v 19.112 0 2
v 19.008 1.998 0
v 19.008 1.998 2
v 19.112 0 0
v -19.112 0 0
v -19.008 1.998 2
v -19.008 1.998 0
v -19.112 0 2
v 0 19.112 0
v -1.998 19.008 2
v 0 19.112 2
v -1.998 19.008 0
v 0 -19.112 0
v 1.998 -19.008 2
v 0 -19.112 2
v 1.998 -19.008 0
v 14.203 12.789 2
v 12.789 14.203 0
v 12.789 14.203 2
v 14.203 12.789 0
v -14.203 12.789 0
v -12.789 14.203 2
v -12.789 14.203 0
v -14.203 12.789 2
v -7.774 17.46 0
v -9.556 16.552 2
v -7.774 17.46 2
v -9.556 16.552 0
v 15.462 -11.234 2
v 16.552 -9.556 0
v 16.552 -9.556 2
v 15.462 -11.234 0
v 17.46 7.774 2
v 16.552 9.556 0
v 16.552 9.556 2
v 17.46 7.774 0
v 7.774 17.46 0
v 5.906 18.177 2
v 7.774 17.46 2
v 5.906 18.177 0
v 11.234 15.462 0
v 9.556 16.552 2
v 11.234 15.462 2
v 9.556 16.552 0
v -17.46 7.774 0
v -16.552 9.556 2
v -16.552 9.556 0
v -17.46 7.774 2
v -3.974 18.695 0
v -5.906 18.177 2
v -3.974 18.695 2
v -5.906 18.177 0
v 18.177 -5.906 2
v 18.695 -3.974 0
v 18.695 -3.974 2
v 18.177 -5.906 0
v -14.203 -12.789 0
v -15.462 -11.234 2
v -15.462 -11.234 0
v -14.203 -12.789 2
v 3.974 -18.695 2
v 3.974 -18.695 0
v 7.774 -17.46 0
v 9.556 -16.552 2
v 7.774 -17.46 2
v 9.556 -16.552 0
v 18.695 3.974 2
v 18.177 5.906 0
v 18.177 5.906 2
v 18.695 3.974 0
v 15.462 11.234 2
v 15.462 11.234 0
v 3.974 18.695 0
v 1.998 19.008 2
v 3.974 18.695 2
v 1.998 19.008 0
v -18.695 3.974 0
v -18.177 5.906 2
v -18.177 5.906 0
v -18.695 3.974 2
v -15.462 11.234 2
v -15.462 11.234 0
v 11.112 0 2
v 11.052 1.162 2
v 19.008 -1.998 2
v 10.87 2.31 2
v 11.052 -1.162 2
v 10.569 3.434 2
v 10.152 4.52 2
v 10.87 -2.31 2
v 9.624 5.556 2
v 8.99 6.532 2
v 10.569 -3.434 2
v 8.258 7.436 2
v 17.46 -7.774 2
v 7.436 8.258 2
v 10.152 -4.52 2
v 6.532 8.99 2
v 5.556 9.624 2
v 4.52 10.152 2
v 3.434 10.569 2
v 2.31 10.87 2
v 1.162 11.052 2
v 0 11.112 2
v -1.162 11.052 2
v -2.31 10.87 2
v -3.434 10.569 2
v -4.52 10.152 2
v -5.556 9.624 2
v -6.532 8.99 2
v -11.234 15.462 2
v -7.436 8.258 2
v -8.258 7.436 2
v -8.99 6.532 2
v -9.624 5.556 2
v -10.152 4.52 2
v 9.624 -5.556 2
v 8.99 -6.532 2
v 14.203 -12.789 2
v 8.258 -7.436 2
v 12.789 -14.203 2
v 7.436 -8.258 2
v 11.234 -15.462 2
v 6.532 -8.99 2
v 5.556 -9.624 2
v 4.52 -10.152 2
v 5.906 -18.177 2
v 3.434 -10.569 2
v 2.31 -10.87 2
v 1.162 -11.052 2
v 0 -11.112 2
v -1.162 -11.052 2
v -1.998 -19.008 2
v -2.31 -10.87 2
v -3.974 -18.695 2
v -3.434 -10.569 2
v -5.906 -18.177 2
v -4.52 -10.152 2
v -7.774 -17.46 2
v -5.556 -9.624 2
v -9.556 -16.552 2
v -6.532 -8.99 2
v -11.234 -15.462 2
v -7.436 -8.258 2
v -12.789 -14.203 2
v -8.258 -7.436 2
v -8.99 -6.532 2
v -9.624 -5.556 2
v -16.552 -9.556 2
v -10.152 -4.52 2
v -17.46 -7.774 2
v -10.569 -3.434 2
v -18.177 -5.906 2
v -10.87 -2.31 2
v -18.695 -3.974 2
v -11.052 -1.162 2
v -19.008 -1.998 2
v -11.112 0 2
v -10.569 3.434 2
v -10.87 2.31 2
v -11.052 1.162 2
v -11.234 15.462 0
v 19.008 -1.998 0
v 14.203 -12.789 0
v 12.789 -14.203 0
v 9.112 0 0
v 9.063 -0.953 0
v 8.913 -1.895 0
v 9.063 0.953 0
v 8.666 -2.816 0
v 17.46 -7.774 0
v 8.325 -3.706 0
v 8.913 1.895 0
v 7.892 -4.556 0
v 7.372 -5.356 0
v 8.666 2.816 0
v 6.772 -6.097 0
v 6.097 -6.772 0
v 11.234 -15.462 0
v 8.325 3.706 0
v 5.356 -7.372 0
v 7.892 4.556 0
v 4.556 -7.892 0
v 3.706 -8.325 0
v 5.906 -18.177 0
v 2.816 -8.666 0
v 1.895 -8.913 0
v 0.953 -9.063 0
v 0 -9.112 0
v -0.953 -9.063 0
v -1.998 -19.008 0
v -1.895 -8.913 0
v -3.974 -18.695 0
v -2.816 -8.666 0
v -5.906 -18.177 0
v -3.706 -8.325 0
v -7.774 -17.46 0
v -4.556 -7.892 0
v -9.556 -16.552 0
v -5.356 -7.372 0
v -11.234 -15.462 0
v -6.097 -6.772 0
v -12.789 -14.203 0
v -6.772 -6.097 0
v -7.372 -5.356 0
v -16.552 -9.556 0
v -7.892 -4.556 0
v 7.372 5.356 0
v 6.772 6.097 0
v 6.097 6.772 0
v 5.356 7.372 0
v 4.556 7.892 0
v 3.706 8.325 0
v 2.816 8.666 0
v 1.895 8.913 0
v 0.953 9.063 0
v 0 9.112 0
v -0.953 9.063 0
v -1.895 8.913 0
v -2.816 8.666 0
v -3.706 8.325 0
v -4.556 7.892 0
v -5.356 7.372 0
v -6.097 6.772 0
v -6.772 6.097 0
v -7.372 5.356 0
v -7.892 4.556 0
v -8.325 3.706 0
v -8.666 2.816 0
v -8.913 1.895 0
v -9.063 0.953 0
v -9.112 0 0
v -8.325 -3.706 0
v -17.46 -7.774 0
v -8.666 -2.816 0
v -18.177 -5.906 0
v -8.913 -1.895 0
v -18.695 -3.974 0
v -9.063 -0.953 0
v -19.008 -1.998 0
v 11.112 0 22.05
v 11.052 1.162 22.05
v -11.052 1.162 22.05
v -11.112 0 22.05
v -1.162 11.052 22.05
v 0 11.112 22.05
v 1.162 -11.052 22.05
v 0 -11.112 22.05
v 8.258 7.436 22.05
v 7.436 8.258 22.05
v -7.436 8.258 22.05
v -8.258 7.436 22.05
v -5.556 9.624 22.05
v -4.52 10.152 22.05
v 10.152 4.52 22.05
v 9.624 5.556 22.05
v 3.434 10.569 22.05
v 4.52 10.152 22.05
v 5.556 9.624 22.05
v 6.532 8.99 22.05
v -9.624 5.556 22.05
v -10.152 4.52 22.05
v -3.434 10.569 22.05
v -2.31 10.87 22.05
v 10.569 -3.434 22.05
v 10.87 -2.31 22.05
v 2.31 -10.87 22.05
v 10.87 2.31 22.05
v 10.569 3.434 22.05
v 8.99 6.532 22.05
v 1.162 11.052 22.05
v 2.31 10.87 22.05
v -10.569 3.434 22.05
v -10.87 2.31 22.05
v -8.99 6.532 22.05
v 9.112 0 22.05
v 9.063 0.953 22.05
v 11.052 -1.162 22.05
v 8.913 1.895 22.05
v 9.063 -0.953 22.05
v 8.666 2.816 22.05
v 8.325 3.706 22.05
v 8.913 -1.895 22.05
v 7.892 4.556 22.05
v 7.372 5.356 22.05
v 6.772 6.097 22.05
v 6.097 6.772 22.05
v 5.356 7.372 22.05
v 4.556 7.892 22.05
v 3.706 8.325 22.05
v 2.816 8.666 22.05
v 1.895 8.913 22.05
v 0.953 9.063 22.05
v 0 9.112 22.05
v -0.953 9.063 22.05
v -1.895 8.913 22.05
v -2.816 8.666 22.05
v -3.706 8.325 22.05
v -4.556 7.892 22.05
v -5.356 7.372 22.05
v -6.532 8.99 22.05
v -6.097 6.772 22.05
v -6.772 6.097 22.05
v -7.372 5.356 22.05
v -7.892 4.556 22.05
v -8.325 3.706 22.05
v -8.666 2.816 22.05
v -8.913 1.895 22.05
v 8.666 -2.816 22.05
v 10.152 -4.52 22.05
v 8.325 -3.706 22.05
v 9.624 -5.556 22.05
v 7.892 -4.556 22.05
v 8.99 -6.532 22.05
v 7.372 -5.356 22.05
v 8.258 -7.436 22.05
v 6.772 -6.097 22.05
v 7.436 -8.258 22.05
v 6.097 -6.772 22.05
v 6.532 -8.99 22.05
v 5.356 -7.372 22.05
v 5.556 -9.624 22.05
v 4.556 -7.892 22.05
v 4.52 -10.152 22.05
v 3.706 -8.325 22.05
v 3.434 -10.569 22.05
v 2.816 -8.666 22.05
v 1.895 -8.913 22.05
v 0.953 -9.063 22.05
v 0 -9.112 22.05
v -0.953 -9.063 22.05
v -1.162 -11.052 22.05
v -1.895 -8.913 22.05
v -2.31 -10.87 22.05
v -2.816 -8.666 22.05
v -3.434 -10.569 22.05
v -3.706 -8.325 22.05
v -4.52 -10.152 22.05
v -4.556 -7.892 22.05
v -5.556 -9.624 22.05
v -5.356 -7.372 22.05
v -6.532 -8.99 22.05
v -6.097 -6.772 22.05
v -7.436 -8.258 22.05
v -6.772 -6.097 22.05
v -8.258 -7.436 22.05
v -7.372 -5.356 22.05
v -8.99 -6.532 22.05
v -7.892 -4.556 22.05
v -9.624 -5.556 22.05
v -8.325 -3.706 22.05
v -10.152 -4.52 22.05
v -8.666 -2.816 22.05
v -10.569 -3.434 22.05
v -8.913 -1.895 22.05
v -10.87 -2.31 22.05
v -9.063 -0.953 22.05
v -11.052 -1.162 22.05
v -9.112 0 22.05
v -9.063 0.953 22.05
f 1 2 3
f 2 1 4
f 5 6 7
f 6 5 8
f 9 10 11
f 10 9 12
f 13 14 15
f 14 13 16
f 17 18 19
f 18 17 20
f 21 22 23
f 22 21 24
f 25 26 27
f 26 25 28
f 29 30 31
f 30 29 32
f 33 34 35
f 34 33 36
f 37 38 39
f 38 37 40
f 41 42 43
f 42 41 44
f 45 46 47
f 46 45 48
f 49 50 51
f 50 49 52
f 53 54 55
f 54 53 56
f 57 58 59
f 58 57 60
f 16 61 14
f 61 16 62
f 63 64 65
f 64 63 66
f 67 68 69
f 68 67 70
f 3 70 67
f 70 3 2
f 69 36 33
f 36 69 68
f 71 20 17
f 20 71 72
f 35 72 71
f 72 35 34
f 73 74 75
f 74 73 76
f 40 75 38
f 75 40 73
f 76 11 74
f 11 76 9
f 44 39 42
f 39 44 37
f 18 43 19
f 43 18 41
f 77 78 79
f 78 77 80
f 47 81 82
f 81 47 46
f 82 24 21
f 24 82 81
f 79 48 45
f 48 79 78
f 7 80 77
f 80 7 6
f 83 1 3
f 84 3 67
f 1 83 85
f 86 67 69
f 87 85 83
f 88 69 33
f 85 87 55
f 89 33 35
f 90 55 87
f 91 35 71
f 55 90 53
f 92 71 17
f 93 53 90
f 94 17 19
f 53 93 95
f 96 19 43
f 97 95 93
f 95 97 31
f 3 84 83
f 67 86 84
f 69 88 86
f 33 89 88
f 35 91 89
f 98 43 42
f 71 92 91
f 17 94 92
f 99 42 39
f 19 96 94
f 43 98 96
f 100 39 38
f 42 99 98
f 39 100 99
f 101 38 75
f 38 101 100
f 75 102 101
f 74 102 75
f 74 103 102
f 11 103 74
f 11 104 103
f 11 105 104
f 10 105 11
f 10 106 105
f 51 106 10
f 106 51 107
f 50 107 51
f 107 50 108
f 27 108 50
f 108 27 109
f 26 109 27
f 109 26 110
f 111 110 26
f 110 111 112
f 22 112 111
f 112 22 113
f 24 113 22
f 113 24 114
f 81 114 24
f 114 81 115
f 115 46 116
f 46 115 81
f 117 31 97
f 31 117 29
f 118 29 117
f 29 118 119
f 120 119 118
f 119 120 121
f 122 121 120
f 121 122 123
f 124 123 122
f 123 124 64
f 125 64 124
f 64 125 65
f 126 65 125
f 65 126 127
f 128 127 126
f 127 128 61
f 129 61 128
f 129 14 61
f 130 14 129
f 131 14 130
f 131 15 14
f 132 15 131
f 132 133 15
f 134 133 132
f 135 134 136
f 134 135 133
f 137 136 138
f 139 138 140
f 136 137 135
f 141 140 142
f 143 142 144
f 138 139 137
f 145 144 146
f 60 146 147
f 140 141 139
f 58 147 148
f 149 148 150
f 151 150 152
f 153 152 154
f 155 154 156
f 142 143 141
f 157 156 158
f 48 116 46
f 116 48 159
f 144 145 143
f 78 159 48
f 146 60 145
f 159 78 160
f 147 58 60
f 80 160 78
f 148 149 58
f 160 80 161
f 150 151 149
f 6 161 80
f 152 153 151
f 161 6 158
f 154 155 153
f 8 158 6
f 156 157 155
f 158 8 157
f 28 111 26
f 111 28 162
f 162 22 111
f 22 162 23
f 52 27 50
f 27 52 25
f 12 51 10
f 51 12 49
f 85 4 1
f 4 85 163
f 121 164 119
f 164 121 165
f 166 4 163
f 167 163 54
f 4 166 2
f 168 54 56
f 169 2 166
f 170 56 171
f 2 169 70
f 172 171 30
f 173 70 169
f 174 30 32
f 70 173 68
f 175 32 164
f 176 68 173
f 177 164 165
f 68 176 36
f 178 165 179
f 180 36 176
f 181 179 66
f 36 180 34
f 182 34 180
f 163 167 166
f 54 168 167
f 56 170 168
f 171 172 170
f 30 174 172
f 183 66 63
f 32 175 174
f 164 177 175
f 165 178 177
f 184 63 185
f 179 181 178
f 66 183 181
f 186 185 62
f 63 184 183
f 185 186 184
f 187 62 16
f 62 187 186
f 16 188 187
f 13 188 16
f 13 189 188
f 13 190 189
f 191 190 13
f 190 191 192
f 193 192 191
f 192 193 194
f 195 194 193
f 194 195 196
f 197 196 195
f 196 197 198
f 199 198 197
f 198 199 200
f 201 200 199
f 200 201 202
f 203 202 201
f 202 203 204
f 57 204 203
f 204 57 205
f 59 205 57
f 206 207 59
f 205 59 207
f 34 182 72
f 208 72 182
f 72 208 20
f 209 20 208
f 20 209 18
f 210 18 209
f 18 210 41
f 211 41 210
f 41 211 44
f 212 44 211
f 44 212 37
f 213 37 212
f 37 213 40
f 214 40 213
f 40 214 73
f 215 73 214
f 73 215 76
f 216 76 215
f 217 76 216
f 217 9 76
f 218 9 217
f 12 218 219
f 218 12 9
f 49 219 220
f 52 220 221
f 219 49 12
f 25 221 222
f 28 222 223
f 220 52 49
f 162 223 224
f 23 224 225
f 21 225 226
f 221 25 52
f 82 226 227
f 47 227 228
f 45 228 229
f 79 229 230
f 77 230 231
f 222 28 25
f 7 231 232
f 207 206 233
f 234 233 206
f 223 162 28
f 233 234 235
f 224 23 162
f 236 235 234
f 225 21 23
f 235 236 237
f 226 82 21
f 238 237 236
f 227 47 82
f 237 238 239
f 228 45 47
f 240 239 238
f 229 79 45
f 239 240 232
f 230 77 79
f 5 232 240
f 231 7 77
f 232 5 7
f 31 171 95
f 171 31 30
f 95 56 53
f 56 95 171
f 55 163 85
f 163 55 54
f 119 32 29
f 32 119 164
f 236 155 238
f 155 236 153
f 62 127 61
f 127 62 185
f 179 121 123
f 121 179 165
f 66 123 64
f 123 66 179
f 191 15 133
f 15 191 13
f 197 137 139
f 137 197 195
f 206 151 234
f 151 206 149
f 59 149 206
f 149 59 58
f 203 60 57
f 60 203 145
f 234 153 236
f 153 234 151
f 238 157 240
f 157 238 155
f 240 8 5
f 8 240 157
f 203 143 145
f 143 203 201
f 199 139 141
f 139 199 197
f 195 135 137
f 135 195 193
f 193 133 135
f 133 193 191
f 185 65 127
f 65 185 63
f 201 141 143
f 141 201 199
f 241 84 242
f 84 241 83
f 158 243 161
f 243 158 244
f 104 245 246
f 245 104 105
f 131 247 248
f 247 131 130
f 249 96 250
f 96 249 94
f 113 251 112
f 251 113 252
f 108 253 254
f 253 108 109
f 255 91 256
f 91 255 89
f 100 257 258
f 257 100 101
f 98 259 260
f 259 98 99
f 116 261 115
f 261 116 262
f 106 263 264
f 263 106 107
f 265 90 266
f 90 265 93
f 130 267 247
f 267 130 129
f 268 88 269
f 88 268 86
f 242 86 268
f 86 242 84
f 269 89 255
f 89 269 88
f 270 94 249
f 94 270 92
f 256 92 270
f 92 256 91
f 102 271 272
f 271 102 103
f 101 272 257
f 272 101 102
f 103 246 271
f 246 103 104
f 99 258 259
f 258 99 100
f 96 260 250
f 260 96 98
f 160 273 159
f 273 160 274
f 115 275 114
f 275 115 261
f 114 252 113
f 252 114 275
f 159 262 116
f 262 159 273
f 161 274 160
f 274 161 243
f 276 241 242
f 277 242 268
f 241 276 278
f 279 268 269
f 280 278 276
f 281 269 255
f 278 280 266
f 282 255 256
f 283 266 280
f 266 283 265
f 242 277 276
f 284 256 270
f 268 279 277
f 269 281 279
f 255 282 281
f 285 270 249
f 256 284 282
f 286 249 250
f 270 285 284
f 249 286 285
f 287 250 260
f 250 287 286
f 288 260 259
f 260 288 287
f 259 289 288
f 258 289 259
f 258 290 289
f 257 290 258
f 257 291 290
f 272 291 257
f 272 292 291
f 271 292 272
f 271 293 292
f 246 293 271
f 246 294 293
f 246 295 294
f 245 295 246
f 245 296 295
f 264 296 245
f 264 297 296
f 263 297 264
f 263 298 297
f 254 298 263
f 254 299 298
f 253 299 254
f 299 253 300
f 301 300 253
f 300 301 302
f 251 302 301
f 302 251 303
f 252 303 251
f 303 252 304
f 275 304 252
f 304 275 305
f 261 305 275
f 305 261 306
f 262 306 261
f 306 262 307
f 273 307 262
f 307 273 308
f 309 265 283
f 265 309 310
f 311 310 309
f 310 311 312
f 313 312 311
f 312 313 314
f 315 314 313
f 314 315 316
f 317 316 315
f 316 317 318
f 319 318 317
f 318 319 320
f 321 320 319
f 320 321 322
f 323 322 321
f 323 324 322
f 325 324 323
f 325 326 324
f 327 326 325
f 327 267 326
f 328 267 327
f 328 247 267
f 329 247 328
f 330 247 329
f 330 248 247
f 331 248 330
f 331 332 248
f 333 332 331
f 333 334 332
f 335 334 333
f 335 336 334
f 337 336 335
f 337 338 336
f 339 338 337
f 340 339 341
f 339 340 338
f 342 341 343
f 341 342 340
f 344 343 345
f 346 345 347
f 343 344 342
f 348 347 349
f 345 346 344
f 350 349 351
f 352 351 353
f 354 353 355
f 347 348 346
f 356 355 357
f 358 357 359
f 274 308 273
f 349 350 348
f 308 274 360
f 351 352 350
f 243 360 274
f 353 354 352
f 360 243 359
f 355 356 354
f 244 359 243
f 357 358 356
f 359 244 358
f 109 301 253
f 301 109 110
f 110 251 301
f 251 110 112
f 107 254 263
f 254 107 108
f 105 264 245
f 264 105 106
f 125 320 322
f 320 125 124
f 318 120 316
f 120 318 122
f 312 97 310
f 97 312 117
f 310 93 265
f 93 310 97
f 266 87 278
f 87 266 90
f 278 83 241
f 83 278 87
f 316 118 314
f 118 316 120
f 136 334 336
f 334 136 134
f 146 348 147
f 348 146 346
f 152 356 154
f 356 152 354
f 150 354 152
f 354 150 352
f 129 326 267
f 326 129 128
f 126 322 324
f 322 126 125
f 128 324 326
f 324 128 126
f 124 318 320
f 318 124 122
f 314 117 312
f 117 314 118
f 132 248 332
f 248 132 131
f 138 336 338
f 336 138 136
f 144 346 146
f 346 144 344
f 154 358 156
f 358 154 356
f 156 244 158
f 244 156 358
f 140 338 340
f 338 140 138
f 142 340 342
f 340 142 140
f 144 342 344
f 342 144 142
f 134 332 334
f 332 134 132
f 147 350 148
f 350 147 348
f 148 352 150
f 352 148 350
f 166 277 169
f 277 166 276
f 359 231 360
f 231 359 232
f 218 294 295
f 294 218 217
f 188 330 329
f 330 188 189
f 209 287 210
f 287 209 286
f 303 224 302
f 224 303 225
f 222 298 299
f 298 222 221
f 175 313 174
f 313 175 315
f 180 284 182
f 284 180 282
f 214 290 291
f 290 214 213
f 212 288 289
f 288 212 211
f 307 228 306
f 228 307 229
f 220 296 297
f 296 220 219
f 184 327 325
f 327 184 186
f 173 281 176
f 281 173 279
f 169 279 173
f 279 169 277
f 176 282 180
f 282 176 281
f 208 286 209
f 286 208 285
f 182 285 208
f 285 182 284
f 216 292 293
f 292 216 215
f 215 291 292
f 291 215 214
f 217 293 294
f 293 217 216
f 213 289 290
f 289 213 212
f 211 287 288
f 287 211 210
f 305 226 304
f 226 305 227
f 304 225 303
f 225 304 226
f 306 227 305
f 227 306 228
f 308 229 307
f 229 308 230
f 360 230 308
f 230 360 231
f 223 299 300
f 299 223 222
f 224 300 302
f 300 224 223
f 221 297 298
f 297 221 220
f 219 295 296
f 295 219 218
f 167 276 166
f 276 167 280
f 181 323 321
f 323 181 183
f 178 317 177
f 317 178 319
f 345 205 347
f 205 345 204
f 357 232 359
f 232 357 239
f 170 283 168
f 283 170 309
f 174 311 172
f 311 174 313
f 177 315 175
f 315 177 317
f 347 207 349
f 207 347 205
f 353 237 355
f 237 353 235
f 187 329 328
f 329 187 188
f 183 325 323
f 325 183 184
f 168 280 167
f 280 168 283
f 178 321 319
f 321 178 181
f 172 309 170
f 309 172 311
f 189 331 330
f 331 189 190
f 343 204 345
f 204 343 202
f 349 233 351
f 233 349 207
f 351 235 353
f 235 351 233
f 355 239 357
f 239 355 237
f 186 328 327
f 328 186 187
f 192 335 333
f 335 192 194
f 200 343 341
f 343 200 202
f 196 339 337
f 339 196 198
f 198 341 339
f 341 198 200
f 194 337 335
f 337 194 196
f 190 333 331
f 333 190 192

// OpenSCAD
difference(){
	union() {
		union() {
			cylinder($fn = 60, h = 2, r = 19.1125000000);
			cylinder($fn = 60, h = 22.0500000000, r = 11.1125000000);
		}
	}
	/* Holes Below*/
	union(){
		union(){
			translate(v = [0, 0, -1]) {
				cylinder($fn = 60, h = 24.0500000000, r = 9.1125000000);
			}
		}
	} /* End Holes */ 
}
